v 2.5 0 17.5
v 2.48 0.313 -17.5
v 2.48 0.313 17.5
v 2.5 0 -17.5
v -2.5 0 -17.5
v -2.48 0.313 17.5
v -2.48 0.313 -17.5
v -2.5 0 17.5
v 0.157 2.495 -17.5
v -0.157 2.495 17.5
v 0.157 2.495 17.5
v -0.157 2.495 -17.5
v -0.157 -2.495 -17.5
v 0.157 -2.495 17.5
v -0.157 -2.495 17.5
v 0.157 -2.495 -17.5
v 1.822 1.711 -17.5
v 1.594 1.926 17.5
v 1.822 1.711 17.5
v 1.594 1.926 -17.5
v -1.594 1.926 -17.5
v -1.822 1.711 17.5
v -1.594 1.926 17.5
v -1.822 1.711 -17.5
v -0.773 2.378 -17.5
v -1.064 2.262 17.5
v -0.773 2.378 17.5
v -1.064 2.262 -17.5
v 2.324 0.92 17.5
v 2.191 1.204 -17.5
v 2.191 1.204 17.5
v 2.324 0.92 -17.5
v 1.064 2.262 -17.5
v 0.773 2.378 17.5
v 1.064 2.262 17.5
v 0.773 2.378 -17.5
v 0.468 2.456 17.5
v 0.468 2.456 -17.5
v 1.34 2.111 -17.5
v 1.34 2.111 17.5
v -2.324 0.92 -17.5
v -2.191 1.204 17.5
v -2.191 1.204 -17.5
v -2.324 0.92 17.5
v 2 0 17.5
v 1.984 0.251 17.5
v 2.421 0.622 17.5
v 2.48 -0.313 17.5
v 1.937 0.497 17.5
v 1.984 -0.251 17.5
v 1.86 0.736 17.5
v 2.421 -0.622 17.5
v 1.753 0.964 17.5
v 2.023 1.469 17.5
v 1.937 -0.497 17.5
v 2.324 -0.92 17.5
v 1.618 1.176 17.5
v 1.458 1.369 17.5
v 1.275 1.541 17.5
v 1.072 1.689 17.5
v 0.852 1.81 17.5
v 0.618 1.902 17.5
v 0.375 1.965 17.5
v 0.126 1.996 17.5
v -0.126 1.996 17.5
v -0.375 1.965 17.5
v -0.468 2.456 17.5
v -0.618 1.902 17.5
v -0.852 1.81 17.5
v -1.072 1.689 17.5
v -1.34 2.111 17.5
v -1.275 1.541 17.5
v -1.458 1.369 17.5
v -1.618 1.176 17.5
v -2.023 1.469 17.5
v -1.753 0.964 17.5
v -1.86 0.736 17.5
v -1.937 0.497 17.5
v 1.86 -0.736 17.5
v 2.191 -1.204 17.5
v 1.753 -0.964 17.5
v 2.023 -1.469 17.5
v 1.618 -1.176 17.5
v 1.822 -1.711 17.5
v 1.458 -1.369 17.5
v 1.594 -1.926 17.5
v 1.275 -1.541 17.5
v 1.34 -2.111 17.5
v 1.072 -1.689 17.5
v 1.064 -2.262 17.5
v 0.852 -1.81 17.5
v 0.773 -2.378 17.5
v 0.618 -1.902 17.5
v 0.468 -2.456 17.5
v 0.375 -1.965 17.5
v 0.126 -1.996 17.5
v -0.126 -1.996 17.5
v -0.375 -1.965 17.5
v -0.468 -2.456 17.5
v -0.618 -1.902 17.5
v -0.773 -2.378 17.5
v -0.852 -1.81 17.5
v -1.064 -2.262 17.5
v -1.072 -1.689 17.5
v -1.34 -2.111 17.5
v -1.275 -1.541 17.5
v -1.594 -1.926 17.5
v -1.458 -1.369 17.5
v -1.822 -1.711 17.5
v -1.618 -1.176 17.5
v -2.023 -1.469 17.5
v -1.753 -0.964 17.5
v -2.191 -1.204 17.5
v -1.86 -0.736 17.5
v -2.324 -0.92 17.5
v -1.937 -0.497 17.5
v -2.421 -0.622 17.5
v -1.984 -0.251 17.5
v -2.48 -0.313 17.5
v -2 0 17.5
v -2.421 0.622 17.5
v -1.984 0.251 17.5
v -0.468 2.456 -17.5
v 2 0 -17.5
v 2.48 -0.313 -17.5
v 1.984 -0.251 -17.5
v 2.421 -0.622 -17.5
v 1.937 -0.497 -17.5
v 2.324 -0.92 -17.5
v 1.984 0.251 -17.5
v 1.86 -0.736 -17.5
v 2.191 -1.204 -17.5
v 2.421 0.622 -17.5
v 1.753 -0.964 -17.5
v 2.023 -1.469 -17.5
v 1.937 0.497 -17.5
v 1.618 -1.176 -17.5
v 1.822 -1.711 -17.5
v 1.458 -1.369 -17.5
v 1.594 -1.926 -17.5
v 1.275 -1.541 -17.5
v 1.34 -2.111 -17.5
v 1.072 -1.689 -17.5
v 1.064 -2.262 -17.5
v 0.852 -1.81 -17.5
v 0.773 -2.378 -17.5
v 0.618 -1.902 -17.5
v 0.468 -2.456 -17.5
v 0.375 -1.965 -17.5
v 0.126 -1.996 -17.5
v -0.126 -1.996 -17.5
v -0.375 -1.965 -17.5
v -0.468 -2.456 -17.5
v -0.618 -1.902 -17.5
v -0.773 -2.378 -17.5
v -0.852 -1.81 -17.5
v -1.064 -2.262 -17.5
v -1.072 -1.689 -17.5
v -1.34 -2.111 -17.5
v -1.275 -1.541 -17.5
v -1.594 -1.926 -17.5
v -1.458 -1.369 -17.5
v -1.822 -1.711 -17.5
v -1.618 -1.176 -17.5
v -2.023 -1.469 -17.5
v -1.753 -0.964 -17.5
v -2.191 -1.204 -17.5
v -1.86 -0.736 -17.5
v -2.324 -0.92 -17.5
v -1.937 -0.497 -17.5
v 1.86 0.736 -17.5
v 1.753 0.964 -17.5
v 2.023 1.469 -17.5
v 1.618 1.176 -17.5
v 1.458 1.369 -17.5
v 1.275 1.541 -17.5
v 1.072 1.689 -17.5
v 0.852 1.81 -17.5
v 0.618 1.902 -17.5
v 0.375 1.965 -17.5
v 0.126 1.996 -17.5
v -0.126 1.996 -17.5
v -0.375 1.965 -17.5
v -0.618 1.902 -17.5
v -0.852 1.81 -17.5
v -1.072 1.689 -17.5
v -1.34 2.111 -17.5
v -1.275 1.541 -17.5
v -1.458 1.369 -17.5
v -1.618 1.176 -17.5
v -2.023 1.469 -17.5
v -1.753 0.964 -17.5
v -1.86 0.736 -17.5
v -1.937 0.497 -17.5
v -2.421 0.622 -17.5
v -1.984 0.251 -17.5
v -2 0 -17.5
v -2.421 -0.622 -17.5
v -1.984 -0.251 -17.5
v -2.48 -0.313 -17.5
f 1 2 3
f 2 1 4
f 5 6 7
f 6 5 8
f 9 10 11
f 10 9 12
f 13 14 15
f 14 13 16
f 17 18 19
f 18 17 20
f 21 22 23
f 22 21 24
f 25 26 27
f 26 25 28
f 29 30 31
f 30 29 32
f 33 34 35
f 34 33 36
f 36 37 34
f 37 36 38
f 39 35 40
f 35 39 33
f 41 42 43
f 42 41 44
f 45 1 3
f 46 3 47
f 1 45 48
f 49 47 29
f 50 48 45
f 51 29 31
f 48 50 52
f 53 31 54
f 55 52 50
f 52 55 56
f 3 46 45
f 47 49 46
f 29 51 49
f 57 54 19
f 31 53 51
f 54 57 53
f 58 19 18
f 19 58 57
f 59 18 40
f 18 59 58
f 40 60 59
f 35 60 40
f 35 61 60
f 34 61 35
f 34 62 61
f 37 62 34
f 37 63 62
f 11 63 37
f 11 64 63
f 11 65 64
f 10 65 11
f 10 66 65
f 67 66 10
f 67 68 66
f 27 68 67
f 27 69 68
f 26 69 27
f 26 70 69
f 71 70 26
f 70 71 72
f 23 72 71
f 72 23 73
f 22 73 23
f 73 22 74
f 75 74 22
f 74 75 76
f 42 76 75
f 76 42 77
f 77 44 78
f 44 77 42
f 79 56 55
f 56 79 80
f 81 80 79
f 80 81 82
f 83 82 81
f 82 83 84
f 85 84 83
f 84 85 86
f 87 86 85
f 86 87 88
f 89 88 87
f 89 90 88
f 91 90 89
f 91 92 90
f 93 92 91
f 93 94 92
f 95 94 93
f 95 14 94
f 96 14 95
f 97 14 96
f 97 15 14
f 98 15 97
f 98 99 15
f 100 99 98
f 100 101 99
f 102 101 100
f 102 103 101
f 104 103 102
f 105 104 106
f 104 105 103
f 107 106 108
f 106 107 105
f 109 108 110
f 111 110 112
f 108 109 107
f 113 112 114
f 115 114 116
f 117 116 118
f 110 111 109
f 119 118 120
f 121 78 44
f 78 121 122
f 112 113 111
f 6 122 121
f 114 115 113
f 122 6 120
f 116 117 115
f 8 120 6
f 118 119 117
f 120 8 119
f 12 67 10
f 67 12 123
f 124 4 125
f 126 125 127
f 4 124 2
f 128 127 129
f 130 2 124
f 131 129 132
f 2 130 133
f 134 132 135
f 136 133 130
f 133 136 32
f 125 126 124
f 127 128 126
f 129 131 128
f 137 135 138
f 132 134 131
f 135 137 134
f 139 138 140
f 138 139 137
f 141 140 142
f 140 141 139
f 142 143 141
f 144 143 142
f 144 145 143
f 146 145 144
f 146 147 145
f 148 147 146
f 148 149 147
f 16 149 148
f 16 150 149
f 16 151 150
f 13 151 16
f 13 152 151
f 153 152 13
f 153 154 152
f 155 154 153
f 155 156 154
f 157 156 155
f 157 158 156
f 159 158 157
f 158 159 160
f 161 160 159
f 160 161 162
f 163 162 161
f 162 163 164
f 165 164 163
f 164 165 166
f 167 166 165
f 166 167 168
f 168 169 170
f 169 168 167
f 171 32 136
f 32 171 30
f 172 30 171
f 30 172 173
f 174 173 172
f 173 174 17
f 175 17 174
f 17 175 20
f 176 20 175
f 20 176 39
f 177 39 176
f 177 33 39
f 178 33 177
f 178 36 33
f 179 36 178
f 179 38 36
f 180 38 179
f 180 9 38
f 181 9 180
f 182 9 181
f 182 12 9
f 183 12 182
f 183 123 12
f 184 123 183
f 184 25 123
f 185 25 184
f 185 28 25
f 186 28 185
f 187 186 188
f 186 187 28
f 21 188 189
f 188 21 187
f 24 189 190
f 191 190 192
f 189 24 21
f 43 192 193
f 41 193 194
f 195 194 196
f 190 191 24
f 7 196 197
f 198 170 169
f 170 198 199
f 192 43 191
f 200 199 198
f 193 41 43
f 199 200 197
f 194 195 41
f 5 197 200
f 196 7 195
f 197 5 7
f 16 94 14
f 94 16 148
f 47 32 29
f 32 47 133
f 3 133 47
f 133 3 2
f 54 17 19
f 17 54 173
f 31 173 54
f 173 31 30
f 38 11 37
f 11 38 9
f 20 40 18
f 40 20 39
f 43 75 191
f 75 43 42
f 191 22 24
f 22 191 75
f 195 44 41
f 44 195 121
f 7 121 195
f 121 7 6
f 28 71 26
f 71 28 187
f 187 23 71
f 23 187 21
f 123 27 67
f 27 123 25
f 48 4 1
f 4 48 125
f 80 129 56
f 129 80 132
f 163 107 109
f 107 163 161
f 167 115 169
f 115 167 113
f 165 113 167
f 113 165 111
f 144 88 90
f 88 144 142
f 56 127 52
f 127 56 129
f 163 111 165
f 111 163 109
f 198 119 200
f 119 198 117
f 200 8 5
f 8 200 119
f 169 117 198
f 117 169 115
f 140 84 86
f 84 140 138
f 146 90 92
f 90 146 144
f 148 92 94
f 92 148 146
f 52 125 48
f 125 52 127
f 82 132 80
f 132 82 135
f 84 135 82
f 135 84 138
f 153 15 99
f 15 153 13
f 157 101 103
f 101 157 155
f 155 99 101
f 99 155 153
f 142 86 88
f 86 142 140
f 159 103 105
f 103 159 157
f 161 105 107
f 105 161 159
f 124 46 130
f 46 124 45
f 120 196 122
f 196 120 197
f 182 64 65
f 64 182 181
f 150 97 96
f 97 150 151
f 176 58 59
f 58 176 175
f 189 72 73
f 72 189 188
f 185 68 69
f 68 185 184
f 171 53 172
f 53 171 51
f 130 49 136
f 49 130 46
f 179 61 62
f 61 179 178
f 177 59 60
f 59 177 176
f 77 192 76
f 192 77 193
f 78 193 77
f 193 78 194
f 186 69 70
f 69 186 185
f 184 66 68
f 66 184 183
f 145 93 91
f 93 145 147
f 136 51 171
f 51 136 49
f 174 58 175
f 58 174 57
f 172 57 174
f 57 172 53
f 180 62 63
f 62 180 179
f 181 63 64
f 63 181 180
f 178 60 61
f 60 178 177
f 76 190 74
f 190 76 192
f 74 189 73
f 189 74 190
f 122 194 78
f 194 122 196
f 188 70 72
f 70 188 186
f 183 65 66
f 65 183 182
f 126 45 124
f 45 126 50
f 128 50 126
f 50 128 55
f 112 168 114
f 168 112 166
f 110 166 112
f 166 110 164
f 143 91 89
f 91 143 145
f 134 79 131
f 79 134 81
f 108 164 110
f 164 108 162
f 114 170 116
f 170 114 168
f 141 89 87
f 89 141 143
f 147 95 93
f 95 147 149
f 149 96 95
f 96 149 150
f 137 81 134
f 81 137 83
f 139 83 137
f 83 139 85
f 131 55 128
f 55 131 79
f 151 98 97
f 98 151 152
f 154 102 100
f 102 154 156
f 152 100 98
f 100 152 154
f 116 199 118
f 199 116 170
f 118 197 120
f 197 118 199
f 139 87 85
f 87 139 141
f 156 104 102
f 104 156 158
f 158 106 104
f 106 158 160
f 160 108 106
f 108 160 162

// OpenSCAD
$fn = 50;


difference() {
	union() {
		translate(v = [0, 0, -17.5000000000]) {
			cylinder(h = 35, r = 2.5000000000);
		}
	}
	union() {
		translate(v = [0, 0, -100.0000000000]) {
			cylinder(h = 200, r = 2);
		}
	}
}
